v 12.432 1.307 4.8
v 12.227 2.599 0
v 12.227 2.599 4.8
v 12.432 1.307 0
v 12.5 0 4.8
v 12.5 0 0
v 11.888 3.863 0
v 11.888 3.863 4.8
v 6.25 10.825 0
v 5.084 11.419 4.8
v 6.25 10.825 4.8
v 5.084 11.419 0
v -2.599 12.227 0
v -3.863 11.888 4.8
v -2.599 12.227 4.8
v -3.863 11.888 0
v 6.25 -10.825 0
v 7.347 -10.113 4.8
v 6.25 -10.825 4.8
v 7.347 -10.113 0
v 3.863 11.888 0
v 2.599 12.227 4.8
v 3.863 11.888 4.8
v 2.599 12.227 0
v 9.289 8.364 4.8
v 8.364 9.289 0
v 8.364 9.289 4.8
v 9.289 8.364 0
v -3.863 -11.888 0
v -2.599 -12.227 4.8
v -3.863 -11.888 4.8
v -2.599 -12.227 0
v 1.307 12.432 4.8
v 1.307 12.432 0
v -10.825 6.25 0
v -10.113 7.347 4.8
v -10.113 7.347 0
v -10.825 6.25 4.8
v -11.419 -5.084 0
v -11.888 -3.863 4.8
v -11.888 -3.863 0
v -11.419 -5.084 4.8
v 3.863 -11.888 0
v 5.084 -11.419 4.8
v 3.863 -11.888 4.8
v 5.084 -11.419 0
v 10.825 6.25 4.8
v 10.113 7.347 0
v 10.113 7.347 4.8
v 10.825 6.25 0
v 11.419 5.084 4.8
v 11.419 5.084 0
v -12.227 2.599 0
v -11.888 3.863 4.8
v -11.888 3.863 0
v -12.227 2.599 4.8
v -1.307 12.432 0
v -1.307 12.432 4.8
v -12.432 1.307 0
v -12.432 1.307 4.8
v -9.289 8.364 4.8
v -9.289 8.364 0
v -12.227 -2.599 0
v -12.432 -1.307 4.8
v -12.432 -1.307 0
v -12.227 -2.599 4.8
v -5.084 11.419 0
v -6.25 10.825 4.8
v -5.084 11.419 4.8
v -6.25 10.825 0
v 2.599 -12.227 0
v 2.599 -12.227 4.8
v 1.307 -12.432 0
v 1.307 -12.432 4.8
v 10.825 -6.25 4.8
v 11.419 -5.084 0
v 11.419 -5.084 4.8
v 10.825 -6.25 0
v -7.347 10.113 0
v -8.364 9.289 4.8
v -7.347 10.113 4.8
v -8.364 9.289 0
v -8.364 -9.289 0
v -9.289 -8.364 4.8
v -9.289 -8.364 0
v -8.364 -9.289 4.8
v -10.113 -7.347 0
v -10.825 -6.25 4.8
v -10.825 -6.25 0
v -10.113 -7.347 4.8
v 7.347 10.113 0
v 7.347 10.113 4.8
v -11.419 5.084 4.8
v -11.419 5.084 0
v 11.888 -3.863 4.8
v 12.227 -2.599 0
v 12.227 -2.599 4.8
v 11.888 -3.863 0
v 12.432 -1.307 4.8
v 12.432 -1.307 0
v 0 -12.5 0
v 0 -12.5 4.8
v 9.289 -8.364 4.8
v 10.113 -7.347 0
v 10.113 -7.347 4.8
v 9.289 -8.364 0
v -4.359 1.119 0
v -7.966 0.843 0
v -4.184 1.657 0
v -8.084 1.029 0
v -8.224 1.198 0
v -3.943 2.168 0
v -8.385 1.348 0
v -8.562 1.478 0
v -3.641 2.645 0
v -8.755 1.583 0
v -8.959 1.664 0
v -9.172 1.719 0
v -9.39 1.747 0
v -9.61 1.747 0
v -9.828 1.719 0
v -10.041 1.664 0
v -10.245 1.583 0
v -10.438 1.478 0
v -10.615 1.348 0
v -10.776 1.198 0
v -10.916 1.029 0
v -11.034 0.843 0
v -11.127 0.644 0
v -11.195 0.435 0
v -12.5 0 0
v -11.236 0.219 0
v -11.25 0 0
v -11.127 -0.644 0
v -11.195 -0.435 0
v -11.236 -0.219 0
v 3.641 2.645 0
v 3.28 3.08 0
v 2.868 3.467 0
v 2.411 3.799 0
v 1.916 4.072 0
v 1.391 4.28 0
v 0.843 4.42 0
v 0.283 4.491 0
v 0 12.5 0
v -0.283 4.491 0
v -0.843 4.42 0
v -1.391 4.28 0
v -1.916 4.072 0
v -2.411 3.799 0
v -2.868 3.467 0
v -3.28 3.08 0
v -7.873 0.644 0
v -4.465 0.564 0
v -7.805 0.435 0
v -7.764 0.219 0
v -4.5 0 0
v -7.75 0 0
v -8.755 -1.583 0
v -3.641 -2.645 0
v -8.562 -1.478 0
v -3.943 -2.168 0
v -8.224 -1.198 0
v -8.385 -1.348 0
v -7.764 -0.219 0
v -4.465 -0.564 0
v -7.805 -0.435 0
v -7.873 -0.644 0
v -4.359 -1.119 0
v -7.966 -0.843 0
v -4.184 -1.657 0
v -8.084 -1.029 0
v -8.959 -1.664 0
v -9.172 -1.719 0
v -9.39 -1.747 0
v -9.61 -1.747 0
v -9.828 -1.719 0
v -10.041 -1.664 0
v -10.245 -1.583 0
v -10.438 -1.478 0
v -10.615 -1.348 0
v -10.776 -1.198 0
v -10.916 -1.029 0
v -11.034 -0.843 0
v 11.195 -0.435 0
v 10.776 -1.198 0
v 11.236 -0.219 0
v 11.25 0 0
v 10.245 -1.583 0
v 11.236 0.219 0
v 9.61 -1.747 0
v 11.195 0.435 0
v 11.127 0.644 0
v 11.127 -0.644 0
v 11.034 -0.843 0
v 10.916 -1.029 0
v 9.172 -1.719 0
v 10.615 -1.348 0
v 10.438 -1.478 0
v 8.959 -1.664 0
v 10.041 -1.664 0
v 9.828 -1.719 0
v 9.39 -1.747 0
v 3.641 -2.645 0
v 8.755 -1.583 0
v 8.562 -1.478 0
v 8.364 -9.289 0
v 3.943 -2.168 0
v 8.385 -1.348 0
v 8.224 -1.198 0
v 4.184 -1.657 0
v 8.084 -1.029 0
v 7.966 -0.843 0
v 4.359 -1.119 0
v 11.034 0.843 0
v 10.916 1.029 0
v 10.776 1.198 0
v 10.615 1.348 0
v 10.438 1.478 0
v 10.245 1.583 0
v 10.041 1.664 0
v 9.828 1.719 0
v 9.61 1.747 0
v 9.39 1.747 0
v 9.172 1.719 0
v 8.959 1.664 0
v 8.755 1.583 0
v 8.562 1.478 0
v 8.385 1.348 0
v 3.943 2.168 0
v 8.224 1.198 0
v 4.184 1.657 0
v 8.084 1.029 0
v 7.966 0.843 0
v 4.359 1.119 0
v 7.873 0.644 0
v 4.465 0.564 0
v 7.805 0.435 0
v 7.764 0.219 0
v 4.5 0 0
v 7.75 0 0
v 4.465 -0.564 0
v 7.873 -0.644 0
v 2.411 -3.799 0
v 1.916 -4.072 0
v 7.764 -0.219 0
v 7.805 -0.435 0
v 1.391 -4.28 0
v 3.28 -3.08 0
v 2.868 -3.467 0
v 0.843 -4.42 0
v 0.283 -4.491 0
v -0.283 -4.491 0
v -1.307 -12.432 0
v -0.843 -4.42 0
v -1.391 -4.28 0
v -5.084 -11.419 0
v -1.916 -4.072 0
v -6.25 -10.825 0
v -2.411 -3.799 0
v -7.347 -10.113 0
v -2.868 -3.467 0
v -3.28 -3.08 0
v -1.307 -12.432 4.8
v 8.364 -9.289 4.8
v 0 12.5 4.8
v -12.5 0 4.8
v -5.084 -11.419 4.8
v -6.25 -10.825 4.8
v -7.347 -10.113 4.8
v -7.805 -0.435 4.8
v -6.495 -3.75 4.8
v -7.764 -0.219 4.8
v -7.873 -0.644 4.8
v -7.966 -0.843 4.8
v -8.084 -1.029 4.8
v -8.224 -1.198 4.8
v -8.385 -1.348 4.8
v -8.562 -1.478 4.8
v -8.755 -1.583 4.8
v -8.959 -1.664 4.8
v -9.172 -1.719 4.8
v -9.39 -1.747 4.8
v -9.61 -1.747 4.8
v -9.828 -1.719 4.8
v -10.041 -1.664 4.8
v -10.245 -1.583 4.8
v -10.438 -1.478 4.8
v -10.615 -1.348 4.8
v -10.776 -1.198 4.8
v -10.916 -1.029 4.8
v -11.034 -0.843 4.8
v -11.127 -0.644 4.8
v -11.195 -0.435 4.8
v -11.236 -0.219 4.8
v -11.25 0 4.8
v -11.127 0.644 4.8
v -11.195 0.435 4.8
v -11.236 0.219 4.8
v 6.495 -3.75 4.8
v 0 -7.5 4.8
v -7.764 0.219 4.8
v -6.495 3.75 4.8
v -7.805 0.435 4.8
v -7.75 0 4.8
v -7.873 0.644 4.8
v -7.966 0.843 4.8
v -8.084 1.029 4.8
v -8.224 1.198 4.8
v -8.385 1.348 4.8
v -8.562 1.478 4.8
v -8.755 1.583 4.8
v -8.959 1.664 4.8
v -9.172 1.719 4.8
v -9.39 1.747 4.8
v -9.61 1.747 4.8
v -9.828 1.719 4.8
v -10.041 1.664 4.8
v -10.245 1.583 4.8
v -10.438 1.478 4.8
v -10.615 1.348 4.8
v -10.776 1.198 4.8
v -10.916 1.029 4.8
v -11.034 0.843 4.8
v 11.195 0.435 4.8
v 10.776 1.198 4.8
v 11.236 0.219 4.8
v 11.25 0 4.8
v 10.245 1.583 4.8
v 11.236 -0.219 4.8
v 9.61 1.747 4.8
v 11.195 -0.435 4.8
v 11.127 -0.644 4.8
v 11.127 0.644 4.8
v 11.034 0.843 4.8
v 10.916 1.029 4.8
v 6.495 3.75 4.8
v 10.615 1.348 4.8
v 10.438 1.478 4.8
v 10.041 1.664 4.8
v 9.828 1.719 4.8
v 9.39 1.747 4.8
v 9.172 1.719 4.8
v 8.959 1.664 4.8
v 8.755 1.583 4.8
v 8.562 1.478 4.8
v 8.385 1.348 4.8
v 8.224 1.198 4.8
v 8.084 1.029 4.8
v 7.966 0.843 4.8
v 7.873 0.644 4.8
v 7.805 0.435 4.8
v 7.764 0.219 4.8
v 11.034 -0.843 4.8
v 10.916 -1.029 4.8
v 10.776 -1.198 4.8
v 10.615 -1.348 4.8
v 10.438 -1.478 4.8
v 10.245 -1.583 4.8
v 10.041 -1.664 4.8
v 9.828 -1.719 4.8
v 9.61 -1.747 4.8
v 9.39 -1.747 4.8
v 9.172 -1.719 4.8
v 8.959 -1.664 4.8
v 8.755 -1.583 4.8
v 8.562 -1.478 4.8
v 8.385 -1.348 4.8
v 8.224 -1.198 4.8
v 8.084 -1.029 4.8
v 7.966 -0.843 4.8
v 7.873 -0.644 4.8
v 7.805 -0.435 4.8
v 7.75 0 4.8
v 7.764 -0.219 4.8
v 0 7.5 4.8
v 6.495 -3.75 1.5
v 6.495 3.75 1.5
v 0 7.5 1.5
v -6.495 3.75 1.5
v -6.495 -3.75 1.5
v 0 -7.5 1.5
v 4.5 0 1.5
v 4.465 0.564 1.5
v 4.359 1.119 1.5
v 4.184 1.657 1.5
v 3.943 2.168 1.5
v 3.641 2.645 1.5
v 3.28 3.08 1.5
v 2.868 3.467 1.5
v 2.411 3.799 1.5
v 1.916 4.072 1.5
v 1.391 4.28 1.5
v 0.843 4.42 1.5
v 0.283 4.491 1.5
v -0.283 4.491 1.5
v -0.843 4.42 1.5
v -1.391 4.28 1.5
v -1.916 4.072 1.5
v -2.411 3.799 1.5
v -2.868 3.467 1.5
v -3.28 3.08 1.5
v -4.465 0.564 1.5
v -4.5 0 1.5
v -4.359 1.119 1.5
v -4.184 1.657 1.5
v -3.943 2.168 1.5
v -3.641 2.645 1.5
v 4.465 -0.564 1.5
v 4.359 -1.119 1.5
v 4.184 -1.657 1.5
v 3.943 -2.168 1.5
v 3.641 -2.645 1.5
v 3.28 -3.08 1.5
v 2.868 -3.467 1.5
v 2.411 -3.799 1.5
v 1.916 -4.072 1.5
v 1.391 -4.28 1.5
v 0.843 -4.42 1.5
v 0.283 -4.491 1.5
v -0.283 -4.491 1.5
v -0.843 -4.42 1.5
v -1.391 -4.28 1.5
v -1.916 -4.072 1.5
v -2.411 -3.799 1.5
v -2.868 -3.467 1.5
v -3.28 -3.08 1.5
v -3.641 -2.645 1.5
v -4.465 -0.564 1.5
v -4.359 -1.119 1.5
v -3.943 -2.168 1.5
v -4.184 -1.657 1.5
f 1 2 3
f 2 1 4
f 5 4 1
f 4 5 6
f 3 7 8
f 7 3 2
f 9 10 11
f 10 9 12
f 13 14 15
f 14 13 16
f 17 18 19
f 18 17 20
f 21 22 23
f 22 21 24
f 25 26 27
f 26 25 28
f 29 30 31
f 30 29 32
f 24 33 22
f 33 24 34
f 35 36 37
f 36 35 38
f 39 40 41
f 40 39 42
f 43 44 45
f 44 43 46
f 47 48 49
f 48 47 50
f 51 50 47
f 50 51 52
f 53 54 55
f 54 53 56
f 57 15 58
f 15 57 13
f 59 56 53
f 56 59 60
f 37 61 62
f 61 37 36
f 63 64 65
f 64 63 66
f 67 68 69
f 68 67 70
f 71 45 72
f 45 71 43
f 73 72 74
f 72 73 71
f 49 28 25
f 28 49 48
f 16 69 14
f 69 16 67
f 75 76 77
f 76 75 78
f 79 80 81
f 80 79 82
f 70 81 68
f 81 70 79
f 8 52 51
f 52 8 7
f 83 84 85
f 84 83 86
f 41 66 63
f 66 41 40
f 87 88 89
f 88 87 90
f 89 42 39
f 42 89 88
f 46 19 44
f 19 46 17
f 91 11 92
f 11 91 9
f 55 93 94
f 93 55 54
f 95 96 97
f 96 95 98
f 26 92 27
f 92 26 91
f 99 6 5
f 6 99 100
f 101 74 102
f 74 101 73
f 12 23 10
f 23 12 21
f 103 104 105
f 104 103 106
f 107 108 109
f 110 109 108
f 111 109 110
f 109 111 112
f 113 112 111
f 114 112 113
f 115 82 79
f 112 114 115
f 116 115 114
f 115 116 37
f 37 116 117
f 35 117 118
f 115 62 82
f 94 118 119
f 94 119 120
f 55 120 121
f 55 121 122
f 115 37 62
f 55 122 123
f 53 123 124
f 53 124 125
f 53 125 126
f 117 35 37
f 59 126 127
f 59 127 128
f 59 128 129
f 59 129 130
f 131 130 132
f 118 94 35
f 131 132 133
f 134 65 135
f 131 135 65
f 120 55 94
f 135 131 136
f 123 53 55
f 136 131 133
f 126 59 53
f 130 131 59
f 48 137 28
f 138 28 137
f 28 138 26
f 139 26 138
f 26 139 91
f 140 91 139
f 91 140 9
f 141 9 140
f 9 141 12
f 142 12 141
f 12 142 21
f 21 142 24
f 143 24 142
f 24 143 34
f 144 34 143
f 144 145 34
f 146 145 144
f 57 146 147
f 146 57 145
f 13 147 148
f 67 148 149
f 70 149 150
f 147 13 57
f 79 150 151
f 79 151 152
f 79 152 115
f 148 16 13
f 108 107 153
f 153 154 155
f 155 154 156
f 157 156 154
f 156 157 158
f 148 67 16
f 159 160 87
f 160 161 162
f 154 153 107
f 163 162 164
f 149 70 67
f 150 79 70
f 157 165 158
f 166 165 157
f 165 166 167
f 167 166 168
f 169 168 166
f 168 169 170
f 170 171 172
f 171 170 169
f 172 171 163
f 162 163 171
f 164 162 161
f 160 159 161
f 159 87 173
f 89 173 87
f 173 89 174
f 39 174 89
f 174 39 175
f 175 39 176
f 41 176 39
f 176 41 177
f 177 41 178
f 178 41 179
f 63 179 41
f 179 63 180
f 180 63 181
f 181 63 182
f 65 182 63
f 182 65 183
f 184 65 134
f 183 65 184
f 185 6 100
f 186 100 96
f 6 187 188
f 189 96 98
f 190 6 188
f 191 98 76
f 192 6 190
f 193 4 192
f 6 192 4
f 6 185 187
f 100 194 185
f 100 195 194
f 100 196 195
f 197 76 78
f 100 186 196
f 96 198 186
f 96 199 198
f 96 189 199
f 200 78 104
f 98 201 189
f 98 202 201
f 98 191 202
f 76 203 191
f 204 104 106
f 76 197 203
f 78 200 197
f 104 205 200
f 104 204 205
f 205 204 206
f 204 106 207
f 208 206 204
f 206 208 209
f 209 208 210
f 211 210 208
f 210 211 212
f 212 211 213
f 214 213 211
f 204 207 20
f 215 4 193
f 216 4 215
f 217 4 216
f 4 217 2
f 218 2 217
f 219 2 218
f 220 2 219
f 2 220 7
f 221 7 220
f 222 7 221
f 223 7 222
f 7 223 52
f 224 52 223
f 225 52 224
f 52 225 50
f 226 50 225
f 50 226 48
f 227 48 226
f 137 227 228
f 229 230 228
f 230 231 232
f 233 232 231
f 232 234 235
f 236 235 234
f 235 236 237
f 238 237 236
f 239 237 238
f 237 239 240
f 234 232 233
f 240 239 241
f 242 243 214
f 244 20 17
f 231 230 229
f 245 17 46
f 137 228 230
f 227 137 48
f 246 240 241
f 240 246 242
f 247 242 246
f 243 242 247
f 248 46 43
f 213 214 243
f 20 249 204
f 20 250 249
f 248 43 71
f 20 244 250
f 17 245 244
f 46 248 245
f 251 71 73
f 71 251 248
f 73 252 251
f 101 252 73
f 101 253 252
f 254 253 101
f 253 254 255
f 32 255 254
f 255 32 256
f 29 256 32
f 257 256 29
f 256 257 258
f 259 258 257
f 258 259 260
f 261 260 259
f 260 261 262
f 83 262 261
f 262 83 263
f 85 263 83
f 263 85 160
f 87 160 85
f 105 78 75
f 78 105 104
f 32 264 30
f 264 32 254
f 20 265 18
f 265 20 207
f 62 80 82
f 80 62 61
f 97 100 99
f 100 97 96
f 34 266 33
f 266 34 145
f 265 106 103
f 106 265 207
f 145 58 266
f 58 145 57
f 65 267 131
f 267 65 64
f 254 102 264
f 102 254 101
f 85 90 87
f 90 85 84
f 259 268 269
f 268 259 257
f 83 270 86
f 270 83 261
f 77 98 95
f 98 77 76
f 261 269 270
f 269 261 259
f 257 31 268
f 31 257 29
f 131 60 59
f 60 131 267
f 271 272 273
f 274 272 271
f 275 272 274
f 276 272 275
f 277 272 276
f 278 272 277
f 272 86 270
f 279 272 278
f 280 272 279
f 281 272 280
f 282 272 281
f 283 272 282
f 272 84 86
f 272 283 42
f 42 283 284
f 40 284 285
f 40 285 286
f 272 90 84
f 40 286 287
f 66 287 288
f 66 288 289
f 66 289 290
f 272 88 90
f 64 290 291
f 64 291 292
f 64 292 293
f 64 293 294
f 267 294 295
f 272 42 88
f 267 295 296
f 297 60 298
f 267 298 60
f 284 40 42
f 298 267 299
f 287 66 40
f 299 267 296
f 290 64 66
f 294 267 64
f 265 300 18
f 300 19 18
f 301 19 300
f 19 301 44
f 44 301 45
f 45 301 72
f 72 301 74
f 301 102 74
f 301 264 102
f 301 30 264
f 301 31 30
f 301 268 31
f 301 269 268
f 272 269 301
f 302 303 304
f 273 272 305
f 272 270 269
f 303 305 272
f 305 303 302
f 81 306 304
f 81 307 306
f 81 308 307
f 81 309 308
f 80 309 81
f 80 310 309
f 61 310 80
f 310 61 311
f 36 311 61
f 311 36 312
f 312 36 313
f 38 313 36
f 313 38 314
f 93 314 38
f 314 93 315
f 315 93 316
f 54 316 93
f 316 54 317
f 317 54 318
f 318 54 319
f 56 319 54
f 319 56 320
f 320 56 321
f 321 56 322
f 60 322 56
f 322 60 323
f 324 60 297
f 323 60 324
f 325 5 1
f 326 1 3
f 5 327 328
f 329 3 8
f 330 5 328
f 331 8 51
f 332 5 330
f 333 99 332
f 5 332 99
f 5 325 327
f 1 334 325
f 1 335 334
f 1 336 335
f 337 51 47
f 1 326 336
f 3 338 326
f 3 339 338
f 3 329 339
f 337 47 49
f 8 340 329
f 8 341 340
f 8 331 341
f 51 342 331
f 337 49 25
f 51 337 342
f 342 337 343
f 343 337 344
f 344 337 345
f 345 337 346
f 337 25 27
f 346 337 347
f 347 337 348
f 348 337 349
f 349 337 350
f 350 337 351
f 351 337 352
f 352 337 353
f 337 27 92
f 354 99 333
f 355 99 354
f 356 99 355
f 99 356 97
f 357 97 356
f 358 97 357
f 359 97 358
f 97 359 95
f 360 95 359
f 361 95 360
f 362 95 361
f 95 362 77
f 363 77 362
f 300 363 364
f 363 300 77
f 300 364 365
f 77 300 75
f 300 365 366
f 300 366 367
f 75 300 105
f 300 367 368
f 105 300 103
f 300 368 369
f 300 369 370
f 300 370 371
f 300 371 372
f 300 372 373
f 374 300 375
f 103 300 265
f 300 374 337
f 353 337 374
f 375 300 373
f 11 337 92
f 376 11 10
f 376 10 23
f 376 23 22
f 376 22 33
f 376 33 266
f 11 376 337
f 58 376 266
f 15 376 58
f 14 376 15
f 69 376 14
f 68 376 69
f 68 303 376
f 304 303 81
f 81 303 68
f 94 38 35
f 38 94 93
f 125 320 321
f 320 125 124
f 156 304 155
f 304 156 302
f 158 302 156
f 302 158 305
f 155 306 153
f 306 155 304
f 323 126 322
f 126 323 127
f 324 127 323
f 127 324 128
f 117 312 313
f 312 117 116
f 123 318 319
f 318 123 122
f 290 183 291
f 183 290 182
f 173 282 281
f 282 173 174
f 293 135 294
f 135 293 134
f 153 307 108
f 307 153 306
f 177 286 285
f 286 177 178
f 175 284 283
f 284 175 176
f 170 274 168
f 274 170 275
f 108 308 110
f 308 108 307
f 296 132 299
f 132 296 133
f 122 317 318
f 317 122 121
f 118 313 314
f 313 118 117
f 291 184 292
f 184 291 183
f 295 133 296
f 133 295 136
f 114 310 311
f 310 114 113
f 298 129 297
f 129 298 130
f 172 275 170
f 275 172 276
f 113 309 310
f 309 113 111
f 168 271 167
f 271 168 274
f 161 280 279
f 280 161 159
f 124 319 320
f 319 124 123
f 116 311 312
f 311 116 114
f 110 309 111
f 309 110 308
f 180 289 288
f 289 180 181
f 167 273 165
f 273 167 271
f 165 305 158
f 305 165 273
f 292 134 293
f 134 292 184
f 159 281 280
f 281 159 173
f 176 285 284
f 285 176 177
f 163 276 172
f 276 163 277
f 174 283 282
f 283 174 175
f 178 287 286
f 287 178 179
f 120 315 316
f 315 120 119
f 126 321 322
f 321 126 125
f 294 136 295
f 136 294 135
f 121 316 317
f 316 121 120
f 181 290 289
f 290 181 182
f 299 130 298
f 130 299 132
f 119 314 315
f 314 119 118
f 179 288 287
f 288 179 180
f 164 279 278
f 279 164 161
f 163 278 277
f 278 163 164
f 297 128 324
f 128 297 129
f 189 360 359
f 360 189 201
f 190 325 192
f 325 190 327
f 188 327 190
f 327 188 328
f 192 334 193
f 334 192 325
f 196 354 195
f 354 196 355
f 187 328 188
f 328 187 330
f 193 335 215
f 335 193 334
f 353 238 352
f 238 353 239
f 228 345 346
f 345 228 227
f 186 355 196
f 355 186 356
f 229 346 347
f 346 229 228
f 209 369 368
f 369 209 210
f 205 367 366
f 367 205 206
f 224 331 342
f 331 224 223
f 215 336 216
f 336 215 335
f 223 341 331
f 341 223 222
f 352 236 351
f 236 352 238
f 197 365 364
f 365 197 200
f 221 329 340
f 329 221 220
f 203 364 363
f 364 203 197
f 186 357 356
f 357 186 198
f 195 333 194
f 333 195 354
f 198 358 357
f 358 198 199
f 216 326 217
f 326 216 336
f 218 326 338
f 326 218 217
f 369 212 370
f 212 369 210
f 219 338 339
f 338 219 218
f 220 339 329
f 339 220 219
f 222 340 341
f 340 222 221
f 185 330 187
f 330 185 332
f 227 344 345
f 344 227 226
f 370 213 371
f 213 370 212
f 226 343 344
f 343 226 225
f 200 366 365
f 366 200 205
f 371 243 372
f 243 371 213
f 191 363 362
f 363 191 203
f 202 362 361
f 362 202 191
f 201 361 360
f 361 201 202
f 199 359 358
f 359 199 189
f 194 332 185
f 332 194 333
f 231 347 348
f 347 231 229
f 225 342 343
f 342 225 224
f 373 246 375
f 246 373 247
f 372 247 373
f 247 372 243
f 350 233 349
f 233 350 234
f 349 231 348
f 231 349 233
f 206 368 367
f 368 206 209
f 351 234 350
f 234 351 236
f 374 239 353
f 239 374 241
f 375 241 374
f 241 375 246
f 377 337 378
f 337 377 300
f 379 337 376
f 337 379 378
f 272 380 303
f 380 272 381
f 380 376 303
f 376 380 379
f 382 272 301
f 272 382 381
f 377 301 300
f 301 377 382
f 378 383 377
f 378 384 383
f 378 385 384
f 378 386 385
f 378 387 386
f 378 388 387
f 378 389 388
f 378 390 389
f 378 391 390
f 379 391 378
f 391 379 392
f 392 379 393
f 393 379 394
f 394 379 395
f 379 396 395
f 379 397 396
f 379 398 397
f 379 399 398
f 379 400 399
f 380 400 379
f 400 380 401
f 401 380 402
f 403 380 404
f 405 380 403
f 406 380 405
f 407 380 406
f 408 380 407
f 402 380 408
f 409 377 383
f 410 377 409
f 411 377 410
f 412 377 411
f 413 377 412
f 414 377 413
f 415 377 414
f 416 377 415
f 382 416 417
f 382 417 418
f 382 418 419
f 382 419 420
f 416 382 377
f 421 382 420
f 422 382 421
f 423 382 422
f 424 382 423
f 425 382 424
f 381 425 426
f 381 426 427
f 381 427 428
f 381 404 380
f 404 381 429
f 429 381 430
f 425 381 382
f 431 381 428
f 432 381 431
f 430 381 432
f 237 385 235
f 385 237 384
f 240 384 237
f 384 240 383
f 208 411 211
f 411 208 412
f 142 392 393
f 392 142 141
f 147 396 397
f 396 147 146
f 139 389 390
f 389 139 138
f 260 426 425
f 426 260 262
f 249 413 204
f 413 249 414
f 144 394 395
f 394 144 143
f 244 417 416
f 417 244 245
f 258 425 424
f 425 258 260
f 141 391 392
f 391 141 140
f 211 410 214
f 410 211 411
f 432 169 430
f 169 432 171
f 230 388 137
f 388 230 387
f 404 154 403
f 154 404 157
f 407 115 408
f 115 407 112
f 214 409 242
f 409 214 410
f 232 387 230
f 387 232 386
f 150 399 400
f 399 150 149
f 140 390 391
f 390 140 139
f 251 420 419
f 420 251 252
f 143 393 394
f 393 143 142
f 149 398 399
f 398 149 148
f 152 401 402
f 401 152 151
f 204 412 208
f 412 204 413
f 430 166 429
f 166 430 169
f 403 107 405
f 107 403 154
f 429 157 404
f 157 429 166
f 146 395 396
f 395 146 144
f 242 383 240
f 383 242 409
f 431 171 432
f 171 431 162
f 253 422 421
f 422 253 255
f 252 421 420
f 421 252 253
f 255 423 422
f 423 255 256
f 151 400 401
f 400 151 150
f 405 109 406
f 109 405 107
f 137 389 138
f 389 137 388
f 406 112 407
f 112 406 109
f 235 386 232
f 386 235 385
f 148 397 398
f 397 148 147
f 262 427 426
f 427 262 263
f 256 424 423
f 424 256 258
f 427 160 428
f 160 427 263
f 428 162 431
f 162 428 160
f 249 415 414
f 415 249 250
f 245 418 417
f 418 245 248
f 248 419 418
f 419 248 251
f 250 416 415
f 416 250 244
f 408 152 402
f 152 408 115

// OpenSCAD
// file: tnut-m8-holder.scad
// Copyright (C) 2022  Bhavin Gandhi
//
// This program is free software: you can redistribute it and/or modify
// it under the terms of the GNU General Public License as published by
// the Free Software Foundation, either version 3 of the License, or
// (at your option) any later version.
//
// This program is distributed in the hope that it will be useful,
// but WITHOUT ANY WARRANTY; without even the implied warranty of
// MERCHANTABILITY or FITNESS FOR A PARTICULAR PURPOSE.  See the
// GNU General Public License for more details.
//
// You should have received a copy of the GNU General Public License
// along with this program.  If not, see <https://www.gnu.org/licenses/>.

module tnut_m8_holder(base_thickness, create_screw_heads)
{
    difference()
    {
        // Main body
        // Nut thickness is 6.6mm
        cylinder(h = base_thickness+3.3, r = 12.5, $fn = 60);

        // Screw holes
        // Actual diameter of screw 2.8mm
        translate(v = [-9.5, 0, -1]) cylinder(h = base_thickness+4.5, r = 1.65+0.1, $fn = 50);
        translate(v = [9.5, 0, -1]) cylinder(h = base_thickness+4.5, r = 1.65+0.1, $fn = 50);

        // Screw heads
        // Actul diameter of screw head 5.5mm
        if (create_screw_heads)
        {
            translate(v = [-9.5, 0, -1]) cylinder(h = base_thickness, r = 2.75+0.2, $fn = 50);
            translate(v = [9.5, 0, -1]) cylinder(h = base_thickness, r = 2.75+0.2, $fn = 50);
        }

        // M8 nut hole
        // https://amesweb.info/Fasteners/Nut/Metric-Hex-Nut-Sizes-Dimensions-Chart.aspx
        // The actual nut e max might slightly differ, I had one with 14.52mm
        rotate([0, 0, 90]) translate(v = [0, 0, base_thickness]) cylinder(h = 4, d = 15, $fn = 6);

        // Threaded M8 rod passthrough
        translate(v = [0, 0, -1]) cylinder(h = base_thickness+4.5, r = 4.5, $fn = 50);
    }
}

// tnut_m8_holder(2.5, true);
// main file
// Bottom part of the holder

use <tnut-m8-holder.scad>

tnut_m8_holder(1.5, false);
